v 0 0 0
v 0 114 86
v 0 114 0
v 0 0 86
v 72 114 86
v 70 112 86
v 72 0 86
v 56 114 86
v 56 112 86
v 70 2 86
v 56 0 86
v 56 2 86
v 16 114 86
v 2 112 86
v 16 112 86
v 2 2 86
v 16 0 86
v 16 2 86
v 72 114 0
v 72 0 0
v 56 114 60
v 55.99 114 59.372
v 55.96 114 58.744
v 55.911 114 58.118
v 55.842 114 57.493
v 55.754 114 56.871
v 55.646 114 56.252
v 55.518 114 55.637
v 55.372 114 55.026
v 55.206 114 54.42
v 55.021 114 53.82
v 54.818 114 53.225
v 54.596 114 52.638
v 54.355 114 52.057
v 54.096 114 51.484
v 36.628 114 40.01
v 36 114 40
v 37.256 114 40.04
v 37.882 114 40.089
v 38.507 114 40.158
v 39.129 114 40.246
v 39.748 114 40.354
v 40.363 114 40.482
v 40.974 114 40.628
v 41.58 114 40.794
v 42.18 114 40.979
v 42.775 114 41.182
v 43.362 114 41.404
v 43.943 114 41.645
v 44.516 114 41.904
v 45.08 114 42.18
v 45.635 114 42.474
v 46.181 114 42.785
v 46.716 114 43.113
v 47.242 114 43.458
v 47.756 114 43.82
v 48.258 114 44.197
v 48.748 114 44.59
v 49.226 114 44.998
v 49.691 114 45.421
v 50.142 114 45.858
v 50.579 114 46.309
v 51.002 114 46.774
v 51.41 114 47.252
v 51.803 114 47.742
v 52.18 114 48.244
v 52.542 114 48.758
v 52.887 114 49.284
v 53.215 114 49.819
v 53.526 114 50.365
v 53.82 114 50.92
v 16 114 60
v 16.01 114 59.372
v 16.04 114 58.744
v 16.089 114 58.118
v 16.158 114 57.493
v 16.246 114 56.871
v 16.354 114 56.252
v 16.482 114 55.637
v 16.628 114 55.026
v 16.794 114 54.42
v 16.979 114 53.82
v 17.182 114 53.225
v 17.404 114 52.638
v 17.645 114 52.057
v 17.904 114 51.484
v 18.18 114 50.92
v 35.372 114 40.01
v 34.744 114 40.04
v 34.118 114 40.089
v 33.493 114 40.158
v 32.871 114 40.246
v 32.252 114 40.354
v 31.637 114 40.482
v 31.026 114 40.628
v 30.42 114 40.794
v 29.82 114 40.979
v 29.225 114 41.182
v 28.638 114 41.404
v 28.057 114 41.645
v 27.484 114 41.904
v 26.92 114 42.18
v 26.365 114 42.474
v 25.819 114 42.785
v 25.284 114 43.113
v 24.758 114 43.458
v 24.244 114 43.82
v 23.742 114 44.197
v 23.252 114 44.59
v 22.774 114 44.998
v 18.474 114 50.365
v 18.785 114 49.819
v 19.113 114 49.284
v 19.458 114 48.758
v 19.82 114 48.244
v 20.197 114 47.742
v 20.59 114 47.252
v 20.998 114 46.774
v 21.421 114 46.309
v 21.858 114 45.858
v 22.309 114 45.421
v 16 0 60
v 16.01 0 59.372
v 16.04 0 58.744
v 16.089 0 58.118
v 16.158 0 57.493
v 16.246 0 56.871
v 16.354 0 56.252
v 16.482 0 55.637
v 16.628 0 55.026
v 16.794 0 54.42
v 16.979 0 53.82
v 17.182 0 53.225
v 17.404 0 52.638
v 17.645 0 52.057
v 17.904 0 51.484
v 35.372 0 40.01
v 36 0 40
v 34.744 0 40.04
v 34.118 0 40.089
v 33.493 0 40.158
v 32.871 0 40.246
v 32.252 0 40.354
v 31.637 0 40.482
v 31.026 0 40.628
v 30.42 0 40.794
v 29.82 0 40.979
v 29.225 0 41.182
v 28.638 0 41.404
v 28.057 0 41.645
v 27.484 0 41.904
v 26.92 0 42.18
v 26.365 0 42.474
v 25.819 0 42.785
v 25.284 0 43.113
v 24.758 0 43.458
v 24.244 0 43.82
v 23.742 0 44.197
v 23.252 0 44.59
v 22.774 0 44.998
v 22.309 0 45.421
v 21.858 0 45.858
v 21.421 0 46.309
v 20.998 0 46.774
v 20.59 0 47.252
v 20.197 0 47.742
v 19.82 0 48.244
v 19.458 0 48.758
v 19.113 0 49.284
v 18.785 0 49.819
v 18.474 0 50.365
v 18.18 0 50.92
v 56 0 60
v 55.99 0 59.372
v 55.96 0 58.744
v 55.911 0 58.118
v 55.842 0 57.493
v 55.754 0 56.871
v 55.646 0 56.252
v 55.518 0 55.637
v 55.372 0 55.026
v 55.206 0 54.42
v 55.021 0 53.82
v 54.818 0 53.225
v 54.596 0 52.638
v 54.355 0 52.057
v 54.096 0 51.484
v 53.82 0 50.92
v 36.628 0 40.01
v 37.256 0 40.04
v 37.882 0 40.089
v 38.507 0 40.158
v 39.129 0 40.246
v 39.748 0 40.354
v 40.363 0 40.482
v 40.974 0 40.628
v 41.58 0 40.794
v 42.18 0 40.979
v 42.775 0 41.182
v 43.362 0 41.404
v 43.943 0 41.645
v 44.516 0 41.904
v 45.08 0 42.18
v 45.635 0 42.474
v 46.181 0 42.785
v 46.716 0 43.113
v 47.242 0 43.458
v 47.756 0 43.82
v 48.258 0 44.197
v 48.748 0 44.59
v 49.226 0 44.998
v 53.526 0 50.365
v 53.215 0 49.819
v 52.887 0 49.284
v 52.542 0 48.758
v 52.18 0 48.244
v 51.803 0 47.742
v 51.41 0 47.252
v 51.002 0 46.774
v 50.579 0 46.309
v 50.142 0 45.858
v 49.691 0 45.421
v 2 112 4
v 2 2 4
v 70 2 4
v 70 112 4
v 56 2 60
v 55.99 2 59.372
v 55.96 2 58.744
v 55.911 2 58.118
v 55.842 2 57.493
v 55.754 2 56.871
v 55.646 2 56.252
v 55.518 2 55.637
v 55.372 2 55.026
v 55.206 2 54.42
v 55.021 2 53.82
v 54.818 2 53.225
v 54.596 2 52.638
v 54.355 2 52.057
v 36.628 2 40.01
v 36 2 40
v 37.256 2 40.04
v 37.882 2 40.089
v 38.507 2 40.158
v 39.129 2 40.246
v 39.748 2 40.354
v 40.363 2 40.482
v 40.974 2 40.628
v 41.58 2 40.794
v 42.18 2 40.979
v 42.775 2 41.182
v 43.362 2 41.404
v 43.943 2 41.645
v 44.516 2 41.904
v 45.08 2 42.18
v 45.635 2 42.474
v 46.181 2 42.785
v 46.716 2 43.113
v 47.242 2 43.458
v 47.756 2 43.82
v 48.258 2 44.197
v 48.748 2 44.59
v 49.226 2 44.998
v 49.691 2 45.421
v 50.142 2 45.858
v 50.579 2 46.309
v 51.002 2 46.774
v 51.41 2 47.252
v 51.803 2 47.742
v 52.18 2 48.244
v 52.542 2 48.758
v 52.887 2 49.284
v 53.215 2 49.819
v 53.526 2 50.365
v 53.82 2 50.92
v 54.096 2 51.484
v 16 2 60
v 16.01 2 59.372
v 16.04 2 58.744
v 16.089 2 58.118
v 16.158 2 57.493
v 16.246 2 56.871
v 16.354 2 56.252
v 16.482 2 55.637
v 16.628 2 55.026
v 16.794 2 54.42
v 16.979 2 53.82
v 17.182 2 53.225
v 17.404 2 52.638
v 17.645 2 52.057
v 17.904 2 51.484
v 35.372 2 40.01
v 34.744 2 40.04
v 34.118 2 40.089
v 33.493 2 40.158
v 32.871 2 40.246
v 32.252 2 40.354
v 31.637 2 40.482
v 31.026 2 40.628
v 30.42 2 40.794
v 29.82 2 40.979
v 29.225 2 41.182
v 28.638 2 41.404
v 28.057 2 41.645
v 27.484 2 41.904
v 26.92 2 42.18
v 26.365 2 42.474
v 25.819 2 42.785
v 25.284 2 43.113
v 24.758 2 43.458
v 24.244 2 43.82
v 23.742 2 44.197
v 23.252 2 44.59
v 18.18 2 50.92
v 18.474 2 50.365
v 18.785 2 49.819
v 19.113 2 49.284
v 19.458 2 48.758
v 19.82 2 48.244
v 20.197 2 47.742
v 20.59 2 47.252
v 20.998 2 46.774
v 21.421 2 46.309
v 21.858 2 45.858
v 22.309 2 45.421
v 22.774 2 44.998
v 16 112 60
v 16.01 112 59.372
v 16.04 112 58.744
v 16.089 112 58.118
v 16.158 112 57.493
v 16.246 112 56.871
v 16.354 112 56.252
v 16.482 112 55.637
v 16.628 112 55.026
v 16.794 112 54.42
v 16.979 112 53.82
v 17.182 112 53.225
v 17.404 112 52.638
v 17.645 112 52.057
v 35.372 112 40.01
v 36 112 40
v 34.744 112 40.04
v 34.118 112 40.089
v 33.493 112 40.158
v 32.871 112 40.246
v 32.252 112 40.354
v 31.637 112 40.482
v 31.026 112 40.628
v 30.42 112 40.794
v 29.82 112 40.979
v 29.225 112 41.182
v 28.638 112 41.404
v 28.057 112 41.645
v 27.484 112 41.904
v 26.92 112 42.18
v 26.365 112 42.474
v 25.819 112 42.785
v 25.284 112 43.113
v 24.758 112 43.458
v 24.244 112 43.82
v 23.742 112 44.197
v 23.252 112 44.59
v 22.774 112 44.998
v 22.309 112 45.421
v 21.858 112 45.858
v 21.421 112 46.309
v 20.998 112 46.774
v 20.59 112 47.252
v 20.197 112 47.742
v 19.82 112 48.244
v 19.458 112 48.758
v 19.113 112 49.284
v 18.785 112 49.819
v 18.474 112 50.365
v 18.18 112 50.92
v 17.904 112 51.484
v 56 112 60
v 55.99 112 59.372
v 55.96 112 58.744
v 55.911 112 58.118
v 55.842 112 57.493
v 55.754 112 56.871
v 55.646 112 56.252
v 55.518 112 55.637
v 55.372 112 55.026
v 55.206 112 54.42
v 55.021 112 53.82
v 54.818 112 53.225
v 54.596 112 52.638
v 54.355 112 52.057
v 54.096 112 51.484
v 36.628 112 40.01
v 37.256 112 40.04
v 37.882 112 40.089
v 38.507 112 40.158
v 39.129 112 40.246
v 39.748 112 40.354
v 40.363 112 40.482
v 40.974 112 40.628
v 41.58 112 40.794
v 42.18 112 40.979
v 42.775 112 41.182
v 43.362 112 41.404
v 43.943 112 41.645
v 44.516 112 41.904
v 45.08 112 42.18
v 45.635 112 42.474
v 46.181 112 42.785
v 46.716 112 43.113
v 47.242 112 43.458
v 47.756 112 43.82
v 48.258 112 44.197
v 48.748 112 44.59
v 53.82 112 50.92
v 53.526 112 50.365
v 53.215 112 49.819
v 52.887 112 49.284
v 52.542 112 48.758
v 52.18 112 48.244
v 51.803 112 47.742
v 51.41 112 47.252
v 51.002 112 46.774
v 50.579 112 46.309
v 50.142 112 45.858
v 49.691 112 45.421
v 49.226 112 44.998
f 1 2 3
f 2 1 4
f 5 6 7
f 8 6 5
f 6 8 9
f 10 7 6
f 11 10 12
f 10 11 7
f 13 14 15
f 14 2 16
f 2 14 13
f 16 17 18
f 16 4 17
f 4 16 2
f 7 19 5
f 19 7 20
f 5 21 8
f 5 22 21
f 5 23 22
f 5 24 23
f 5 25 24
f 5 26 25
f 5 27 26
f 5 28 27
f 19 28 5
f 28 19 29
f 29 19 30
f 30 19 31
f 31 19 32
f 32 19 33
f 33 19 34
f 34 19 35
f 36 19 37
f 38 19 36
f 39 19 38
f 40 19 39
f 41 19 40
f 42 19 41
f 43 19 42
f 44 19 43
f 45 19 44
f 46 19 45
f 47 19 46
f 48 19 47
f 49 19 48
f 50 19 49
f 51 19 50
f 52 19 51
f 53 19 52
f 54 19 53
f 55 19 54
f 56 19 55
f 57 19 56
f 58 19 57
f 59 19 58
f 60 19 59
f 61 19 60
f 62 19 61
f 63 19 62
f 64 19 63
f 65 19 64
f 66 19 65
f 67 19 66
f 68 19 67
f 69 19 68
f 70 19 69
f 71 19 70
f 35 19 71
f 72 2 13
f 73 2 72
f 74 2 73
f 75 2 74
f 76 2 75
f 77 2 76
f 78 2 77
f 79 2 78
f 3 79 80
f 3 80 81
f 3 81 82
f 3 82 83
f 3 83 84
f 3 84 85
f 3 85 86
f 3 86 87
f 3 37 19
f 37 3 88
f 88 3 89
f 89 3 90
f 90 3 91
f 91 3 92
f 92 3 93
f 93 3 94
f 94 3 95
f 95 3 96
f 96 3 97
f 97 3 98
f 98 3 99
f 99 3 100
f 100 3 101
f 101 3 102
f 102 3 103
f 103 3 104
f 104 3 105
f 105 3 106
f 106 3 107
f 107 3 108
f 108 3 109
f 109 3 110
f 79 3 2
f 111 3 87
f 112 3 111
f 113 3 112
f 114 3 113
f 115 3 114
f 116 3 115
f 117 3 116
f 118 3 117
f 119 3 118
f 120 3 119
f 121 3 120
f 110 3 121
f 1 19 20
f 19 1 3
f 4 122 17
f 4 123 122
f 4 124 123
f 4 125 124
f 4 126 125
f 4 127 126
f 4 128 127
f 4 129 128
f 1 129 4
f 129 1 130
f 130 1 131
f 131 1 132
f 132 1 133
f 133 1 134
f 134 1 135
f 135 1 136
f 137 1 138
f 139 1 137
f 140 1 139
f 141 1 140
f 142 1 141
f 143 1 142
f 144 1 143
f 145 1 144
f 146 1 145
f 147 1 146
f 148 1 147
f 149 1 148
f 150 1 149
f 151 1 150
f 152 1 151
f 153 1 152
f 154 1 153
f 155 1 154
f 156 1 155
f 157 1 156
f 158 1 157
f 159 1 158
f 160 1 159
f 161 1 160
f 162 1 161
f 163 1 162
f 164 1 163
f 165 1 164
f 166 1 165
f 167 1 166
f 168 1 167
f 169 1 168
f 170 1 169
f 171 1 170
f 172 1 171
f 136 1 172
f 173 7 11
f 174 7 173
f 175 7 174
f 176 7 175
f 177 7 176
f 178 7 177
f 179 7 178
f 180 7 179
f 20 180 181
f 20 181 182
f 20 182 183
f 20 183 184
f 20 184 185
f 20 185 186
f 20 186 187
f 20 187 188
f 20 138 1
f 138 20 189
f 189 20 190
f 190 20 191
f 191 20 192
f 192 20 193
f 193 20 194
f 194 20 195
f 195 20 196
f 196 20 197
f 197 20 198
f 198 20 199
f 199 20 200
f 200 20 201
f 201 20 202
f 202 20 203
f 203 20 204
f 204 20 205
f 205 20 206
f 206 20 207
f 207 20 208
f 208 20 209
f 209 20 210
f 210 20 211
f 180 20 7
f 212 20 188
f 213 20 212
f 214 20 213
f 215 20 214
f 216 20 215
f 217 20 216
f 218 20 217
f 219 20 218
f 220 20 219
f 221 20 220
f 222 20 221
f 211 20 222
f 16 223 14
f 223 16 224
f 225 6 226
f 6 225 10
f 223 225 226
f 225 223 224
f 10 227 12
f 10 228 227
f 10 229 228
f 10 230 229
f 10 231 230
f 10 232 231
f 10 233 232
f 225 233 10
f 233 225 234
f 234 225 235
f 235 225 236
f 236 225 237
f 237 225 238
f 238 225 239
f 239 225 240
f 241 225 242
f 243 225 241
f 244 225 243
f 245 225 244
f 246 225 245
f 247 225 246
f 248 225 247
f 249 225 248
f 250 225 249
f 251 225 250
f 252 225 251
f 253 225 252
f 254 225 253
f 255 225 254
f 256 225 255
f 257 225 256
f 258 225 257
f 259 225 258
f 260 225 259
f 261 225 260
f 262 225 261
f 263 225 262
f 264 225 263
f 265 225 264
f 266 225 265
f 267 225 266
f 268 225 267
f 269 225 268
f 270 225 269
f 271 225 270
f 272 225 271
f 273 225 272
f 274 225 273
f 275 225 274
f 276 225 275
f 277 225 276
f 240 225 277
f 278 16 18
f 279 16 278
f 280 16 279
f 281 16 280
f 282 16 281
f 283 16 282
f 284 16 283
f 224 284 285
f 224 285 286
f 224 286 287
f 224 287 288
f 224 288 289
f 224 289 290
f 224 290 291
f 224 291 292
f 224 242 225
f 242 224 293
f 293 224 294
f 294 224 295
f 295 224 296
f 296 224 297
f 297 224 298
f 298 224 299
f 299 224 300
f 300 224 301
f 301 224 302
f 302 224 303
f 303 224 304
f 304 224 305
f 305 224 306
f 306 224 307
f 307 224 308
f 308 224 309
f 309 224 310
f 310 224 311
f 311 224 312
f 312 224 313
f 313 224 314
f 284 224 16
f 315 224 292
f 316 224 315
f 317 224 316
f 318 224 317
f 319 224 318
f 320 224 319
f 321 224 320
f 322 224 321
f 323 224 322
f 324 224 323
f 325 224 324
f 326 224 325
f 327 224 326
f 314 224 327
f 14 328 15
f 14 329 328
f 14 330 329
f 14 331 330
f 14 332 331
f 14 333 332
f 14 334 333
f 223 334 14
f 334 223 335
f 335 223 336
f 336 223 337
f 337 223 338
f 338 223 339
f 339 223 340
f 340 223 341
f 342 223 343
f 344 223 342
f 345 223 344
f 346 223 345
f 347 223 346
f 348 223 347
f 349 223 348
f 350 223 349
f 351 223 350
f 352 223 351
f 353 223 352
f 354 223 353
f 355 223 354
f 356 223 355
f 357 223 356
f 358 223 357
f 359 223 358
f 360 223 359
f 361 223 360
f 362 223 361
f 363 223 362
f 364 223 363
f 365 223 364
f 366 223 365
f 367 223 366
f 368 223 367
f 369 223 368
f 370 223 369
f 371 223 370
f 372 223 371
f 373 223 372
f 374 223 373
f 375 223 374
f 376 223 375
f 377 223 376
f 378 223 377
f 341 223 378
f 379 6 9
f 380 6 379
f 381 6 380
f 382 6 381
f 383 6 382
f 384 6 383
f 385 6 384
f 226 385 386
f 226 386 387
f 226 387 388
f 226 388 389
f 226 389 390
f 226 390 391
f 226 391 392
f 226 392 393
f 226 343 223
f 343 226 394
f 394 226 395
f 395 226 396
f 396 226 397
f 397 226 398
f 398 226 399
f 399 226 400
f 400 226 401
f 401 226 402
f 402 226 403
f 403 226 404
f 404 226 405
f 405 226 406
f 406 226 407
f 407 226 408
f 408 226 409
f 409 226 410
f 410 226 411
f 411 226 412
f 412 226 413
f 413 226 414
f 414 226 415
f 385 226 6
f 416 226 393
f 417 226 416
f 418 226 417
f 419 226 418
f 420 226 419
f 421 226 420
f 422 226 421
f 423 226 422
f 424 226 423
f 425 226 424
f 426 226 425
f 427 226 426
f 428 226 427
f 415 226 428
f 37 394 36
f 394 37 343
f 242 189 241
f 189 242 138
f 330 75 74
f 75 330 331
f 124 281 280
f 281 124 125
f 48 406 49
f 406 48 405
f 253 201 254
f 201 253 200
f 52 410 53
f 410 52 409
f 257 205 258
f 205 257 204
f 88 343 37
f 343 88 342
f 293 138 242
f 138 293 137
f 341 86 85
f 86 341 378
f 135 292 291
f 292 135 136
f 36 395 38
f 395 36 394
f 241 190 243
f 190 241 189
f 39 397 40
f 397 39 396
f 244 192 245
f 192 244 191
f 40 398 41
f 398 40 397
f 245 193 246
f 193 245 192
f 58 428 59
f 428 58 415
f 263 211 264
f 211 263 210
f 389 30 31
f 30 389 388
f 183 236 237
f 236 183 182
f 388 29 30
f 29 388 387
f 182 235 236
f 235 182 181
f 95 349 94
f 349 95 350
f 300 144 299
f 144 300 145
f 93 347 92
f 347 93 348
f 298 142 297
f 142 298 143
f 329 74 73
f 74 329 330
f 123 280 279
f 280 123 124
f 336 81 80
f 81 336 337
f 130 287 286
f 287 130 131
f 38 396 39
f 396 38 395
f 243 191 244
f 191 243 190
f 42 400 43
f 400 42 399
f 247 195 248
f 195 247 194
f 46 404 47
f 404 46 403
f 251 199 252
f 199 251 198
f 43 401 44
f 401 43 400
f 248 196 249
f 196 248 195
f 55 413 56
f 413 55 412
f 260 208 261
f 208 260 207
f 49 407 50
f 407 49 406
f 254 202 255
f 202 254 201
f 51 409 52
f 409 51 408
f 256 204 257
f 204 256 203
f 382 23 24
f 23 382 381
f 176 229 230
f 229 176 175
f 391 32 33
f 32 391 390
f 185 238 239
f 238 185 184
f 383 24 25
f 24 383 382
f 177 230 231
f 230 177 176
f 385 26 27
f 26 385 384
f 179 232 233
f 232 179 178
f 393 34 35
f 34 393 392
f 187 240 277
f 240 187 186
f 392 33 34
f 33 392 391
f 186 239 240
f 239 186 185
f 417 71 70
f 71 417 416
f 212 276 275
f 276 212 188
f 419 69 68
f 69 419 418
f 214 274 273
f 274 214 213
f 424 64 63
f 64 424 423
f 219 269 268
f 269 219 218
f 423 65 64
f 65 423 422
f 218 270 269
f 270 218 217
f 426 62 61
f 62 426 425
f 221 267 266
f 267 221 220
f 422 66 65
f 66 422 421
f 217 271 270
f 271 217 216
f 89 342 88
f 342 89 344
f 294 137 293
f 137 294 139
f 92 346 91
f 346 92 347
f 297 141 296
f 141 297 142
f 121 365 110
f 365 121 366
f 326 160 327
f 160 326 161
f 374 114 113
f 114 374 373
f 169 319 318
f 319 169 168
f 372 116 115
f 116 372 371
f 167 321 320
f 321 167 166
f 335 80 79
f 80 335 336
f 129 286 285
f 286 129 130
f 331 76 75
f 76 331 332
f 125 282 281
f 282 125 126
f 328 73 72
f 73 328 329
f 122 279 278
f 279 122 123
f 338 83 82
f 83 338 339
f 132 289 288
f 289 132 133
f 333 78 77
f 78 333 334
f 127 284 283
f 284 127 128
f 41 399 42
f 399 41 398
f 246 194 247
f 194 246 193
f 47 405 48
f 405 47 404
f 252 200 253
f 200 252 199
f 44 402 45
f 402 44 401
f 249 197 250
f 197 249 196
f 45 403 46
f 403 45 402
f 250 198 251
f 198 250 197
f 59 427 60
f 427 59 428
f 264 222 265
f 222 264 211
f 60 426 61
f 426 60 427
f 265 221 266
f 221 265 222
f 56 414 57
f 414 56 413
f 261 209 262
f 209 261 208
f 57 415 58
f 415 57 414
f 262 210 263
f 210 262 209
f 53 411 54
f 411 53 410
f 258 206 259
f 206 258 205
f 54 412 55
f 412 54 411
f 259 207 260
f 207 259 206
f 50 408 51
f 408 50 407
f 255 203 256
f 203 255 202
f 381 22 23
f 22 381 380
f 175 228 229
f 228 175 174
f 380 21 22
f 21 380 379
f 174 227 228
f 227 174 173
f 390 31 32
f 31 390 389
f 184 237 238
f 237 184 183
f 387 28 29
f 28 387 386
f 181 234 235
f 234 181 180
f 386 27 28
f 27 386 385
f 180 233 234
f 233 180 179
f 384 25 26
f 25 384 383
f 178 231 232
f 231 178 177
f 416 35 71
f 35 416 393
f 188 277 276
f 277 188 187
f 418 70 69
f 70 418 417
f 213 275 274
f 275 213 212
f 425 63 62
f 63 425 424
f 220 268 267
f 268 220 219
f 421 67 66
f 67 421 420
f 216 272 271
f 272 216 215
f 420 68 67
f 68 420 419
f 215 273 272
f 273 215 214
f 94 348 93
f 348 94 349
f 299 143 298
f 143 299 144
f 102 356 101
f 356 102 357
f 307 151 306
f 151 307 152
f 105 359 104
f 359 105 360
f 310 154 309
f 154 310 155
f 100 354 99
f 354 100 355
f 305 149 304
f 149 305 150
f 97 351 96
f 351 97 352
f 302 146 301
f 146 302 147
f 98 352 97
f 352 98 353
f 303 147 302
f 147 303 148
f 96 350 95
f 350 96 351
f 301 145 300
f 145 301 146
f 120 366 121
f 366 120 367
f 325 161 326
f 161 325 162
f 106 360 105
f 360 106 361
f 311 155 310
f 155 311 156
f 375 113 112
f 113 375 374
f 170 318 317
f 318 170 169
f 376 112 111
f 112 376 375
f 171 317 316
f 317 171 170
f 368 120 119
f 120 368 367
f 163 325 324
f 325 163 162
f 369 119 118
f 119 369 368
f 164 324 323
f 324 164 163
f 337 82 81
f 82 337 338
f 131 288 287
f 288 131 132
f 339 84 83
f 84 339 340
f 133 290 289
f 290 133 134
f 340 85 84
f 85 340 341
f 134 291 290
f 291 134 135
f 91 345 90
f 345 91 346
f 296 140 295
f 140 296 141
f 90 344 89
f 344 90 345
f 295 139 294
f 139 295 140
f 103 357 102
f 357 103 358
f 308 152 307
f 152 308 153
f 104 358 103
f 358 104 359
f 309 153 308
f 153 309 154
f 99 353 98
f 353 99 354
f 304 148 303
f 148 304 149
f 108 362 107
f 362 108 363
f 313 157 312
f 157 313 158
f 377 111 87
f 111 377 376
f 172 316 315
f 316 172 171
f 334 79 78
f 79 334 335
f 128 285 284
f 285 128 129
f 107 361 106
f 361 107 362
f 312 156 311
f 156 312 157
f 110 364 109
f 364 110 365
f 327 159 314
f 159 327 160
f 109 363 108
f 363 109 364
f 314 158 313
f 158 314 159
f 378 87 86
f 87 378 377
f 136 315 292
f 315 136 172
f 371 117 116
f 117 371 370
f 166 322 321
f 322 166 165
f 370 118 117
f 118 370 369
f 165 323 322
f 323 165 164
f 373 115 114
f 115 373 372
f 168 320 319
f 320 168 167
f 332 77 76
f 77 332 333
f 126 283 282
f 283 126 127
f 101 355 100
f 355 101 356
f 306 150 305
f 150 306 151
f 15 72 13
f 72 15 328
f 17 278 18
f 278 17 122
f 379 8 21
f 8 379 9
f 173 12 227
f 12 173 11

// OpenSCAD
$fn=200;

THICK = 2;

CARD_L = 110;
CARD_W = 68;
CARD_STACK = 82;

BOX_W = CARD_W + (THICK * 2);
BOX_L = CARD_L + (THICK * 2);
BOX_H = CARD_STACK + (THICK * 2);



difference() {
    cube(size = [
        BOX_W,
        BOX_L, 
        BOX_H]);

    translate([
        THICK, 
        THICK, 
        BOX_H - CARD_STACK]) {
            
        cube(size = [
            CARD_W,
            CARD_L,
            CARD_STACK + 1]);
    }


    translate([
        BOX_W / 2,
        490,
        60]) {

        rotate([90, 90, 0]) {
            cylinder(
                h = 1000,
                r = 20);
        }
    }

    translate([
        (BOX_L / 2) - 41, 
        -1, 
        60]) {
            
        cube(size = [
            40,
            150,
            80]);
    }

}
